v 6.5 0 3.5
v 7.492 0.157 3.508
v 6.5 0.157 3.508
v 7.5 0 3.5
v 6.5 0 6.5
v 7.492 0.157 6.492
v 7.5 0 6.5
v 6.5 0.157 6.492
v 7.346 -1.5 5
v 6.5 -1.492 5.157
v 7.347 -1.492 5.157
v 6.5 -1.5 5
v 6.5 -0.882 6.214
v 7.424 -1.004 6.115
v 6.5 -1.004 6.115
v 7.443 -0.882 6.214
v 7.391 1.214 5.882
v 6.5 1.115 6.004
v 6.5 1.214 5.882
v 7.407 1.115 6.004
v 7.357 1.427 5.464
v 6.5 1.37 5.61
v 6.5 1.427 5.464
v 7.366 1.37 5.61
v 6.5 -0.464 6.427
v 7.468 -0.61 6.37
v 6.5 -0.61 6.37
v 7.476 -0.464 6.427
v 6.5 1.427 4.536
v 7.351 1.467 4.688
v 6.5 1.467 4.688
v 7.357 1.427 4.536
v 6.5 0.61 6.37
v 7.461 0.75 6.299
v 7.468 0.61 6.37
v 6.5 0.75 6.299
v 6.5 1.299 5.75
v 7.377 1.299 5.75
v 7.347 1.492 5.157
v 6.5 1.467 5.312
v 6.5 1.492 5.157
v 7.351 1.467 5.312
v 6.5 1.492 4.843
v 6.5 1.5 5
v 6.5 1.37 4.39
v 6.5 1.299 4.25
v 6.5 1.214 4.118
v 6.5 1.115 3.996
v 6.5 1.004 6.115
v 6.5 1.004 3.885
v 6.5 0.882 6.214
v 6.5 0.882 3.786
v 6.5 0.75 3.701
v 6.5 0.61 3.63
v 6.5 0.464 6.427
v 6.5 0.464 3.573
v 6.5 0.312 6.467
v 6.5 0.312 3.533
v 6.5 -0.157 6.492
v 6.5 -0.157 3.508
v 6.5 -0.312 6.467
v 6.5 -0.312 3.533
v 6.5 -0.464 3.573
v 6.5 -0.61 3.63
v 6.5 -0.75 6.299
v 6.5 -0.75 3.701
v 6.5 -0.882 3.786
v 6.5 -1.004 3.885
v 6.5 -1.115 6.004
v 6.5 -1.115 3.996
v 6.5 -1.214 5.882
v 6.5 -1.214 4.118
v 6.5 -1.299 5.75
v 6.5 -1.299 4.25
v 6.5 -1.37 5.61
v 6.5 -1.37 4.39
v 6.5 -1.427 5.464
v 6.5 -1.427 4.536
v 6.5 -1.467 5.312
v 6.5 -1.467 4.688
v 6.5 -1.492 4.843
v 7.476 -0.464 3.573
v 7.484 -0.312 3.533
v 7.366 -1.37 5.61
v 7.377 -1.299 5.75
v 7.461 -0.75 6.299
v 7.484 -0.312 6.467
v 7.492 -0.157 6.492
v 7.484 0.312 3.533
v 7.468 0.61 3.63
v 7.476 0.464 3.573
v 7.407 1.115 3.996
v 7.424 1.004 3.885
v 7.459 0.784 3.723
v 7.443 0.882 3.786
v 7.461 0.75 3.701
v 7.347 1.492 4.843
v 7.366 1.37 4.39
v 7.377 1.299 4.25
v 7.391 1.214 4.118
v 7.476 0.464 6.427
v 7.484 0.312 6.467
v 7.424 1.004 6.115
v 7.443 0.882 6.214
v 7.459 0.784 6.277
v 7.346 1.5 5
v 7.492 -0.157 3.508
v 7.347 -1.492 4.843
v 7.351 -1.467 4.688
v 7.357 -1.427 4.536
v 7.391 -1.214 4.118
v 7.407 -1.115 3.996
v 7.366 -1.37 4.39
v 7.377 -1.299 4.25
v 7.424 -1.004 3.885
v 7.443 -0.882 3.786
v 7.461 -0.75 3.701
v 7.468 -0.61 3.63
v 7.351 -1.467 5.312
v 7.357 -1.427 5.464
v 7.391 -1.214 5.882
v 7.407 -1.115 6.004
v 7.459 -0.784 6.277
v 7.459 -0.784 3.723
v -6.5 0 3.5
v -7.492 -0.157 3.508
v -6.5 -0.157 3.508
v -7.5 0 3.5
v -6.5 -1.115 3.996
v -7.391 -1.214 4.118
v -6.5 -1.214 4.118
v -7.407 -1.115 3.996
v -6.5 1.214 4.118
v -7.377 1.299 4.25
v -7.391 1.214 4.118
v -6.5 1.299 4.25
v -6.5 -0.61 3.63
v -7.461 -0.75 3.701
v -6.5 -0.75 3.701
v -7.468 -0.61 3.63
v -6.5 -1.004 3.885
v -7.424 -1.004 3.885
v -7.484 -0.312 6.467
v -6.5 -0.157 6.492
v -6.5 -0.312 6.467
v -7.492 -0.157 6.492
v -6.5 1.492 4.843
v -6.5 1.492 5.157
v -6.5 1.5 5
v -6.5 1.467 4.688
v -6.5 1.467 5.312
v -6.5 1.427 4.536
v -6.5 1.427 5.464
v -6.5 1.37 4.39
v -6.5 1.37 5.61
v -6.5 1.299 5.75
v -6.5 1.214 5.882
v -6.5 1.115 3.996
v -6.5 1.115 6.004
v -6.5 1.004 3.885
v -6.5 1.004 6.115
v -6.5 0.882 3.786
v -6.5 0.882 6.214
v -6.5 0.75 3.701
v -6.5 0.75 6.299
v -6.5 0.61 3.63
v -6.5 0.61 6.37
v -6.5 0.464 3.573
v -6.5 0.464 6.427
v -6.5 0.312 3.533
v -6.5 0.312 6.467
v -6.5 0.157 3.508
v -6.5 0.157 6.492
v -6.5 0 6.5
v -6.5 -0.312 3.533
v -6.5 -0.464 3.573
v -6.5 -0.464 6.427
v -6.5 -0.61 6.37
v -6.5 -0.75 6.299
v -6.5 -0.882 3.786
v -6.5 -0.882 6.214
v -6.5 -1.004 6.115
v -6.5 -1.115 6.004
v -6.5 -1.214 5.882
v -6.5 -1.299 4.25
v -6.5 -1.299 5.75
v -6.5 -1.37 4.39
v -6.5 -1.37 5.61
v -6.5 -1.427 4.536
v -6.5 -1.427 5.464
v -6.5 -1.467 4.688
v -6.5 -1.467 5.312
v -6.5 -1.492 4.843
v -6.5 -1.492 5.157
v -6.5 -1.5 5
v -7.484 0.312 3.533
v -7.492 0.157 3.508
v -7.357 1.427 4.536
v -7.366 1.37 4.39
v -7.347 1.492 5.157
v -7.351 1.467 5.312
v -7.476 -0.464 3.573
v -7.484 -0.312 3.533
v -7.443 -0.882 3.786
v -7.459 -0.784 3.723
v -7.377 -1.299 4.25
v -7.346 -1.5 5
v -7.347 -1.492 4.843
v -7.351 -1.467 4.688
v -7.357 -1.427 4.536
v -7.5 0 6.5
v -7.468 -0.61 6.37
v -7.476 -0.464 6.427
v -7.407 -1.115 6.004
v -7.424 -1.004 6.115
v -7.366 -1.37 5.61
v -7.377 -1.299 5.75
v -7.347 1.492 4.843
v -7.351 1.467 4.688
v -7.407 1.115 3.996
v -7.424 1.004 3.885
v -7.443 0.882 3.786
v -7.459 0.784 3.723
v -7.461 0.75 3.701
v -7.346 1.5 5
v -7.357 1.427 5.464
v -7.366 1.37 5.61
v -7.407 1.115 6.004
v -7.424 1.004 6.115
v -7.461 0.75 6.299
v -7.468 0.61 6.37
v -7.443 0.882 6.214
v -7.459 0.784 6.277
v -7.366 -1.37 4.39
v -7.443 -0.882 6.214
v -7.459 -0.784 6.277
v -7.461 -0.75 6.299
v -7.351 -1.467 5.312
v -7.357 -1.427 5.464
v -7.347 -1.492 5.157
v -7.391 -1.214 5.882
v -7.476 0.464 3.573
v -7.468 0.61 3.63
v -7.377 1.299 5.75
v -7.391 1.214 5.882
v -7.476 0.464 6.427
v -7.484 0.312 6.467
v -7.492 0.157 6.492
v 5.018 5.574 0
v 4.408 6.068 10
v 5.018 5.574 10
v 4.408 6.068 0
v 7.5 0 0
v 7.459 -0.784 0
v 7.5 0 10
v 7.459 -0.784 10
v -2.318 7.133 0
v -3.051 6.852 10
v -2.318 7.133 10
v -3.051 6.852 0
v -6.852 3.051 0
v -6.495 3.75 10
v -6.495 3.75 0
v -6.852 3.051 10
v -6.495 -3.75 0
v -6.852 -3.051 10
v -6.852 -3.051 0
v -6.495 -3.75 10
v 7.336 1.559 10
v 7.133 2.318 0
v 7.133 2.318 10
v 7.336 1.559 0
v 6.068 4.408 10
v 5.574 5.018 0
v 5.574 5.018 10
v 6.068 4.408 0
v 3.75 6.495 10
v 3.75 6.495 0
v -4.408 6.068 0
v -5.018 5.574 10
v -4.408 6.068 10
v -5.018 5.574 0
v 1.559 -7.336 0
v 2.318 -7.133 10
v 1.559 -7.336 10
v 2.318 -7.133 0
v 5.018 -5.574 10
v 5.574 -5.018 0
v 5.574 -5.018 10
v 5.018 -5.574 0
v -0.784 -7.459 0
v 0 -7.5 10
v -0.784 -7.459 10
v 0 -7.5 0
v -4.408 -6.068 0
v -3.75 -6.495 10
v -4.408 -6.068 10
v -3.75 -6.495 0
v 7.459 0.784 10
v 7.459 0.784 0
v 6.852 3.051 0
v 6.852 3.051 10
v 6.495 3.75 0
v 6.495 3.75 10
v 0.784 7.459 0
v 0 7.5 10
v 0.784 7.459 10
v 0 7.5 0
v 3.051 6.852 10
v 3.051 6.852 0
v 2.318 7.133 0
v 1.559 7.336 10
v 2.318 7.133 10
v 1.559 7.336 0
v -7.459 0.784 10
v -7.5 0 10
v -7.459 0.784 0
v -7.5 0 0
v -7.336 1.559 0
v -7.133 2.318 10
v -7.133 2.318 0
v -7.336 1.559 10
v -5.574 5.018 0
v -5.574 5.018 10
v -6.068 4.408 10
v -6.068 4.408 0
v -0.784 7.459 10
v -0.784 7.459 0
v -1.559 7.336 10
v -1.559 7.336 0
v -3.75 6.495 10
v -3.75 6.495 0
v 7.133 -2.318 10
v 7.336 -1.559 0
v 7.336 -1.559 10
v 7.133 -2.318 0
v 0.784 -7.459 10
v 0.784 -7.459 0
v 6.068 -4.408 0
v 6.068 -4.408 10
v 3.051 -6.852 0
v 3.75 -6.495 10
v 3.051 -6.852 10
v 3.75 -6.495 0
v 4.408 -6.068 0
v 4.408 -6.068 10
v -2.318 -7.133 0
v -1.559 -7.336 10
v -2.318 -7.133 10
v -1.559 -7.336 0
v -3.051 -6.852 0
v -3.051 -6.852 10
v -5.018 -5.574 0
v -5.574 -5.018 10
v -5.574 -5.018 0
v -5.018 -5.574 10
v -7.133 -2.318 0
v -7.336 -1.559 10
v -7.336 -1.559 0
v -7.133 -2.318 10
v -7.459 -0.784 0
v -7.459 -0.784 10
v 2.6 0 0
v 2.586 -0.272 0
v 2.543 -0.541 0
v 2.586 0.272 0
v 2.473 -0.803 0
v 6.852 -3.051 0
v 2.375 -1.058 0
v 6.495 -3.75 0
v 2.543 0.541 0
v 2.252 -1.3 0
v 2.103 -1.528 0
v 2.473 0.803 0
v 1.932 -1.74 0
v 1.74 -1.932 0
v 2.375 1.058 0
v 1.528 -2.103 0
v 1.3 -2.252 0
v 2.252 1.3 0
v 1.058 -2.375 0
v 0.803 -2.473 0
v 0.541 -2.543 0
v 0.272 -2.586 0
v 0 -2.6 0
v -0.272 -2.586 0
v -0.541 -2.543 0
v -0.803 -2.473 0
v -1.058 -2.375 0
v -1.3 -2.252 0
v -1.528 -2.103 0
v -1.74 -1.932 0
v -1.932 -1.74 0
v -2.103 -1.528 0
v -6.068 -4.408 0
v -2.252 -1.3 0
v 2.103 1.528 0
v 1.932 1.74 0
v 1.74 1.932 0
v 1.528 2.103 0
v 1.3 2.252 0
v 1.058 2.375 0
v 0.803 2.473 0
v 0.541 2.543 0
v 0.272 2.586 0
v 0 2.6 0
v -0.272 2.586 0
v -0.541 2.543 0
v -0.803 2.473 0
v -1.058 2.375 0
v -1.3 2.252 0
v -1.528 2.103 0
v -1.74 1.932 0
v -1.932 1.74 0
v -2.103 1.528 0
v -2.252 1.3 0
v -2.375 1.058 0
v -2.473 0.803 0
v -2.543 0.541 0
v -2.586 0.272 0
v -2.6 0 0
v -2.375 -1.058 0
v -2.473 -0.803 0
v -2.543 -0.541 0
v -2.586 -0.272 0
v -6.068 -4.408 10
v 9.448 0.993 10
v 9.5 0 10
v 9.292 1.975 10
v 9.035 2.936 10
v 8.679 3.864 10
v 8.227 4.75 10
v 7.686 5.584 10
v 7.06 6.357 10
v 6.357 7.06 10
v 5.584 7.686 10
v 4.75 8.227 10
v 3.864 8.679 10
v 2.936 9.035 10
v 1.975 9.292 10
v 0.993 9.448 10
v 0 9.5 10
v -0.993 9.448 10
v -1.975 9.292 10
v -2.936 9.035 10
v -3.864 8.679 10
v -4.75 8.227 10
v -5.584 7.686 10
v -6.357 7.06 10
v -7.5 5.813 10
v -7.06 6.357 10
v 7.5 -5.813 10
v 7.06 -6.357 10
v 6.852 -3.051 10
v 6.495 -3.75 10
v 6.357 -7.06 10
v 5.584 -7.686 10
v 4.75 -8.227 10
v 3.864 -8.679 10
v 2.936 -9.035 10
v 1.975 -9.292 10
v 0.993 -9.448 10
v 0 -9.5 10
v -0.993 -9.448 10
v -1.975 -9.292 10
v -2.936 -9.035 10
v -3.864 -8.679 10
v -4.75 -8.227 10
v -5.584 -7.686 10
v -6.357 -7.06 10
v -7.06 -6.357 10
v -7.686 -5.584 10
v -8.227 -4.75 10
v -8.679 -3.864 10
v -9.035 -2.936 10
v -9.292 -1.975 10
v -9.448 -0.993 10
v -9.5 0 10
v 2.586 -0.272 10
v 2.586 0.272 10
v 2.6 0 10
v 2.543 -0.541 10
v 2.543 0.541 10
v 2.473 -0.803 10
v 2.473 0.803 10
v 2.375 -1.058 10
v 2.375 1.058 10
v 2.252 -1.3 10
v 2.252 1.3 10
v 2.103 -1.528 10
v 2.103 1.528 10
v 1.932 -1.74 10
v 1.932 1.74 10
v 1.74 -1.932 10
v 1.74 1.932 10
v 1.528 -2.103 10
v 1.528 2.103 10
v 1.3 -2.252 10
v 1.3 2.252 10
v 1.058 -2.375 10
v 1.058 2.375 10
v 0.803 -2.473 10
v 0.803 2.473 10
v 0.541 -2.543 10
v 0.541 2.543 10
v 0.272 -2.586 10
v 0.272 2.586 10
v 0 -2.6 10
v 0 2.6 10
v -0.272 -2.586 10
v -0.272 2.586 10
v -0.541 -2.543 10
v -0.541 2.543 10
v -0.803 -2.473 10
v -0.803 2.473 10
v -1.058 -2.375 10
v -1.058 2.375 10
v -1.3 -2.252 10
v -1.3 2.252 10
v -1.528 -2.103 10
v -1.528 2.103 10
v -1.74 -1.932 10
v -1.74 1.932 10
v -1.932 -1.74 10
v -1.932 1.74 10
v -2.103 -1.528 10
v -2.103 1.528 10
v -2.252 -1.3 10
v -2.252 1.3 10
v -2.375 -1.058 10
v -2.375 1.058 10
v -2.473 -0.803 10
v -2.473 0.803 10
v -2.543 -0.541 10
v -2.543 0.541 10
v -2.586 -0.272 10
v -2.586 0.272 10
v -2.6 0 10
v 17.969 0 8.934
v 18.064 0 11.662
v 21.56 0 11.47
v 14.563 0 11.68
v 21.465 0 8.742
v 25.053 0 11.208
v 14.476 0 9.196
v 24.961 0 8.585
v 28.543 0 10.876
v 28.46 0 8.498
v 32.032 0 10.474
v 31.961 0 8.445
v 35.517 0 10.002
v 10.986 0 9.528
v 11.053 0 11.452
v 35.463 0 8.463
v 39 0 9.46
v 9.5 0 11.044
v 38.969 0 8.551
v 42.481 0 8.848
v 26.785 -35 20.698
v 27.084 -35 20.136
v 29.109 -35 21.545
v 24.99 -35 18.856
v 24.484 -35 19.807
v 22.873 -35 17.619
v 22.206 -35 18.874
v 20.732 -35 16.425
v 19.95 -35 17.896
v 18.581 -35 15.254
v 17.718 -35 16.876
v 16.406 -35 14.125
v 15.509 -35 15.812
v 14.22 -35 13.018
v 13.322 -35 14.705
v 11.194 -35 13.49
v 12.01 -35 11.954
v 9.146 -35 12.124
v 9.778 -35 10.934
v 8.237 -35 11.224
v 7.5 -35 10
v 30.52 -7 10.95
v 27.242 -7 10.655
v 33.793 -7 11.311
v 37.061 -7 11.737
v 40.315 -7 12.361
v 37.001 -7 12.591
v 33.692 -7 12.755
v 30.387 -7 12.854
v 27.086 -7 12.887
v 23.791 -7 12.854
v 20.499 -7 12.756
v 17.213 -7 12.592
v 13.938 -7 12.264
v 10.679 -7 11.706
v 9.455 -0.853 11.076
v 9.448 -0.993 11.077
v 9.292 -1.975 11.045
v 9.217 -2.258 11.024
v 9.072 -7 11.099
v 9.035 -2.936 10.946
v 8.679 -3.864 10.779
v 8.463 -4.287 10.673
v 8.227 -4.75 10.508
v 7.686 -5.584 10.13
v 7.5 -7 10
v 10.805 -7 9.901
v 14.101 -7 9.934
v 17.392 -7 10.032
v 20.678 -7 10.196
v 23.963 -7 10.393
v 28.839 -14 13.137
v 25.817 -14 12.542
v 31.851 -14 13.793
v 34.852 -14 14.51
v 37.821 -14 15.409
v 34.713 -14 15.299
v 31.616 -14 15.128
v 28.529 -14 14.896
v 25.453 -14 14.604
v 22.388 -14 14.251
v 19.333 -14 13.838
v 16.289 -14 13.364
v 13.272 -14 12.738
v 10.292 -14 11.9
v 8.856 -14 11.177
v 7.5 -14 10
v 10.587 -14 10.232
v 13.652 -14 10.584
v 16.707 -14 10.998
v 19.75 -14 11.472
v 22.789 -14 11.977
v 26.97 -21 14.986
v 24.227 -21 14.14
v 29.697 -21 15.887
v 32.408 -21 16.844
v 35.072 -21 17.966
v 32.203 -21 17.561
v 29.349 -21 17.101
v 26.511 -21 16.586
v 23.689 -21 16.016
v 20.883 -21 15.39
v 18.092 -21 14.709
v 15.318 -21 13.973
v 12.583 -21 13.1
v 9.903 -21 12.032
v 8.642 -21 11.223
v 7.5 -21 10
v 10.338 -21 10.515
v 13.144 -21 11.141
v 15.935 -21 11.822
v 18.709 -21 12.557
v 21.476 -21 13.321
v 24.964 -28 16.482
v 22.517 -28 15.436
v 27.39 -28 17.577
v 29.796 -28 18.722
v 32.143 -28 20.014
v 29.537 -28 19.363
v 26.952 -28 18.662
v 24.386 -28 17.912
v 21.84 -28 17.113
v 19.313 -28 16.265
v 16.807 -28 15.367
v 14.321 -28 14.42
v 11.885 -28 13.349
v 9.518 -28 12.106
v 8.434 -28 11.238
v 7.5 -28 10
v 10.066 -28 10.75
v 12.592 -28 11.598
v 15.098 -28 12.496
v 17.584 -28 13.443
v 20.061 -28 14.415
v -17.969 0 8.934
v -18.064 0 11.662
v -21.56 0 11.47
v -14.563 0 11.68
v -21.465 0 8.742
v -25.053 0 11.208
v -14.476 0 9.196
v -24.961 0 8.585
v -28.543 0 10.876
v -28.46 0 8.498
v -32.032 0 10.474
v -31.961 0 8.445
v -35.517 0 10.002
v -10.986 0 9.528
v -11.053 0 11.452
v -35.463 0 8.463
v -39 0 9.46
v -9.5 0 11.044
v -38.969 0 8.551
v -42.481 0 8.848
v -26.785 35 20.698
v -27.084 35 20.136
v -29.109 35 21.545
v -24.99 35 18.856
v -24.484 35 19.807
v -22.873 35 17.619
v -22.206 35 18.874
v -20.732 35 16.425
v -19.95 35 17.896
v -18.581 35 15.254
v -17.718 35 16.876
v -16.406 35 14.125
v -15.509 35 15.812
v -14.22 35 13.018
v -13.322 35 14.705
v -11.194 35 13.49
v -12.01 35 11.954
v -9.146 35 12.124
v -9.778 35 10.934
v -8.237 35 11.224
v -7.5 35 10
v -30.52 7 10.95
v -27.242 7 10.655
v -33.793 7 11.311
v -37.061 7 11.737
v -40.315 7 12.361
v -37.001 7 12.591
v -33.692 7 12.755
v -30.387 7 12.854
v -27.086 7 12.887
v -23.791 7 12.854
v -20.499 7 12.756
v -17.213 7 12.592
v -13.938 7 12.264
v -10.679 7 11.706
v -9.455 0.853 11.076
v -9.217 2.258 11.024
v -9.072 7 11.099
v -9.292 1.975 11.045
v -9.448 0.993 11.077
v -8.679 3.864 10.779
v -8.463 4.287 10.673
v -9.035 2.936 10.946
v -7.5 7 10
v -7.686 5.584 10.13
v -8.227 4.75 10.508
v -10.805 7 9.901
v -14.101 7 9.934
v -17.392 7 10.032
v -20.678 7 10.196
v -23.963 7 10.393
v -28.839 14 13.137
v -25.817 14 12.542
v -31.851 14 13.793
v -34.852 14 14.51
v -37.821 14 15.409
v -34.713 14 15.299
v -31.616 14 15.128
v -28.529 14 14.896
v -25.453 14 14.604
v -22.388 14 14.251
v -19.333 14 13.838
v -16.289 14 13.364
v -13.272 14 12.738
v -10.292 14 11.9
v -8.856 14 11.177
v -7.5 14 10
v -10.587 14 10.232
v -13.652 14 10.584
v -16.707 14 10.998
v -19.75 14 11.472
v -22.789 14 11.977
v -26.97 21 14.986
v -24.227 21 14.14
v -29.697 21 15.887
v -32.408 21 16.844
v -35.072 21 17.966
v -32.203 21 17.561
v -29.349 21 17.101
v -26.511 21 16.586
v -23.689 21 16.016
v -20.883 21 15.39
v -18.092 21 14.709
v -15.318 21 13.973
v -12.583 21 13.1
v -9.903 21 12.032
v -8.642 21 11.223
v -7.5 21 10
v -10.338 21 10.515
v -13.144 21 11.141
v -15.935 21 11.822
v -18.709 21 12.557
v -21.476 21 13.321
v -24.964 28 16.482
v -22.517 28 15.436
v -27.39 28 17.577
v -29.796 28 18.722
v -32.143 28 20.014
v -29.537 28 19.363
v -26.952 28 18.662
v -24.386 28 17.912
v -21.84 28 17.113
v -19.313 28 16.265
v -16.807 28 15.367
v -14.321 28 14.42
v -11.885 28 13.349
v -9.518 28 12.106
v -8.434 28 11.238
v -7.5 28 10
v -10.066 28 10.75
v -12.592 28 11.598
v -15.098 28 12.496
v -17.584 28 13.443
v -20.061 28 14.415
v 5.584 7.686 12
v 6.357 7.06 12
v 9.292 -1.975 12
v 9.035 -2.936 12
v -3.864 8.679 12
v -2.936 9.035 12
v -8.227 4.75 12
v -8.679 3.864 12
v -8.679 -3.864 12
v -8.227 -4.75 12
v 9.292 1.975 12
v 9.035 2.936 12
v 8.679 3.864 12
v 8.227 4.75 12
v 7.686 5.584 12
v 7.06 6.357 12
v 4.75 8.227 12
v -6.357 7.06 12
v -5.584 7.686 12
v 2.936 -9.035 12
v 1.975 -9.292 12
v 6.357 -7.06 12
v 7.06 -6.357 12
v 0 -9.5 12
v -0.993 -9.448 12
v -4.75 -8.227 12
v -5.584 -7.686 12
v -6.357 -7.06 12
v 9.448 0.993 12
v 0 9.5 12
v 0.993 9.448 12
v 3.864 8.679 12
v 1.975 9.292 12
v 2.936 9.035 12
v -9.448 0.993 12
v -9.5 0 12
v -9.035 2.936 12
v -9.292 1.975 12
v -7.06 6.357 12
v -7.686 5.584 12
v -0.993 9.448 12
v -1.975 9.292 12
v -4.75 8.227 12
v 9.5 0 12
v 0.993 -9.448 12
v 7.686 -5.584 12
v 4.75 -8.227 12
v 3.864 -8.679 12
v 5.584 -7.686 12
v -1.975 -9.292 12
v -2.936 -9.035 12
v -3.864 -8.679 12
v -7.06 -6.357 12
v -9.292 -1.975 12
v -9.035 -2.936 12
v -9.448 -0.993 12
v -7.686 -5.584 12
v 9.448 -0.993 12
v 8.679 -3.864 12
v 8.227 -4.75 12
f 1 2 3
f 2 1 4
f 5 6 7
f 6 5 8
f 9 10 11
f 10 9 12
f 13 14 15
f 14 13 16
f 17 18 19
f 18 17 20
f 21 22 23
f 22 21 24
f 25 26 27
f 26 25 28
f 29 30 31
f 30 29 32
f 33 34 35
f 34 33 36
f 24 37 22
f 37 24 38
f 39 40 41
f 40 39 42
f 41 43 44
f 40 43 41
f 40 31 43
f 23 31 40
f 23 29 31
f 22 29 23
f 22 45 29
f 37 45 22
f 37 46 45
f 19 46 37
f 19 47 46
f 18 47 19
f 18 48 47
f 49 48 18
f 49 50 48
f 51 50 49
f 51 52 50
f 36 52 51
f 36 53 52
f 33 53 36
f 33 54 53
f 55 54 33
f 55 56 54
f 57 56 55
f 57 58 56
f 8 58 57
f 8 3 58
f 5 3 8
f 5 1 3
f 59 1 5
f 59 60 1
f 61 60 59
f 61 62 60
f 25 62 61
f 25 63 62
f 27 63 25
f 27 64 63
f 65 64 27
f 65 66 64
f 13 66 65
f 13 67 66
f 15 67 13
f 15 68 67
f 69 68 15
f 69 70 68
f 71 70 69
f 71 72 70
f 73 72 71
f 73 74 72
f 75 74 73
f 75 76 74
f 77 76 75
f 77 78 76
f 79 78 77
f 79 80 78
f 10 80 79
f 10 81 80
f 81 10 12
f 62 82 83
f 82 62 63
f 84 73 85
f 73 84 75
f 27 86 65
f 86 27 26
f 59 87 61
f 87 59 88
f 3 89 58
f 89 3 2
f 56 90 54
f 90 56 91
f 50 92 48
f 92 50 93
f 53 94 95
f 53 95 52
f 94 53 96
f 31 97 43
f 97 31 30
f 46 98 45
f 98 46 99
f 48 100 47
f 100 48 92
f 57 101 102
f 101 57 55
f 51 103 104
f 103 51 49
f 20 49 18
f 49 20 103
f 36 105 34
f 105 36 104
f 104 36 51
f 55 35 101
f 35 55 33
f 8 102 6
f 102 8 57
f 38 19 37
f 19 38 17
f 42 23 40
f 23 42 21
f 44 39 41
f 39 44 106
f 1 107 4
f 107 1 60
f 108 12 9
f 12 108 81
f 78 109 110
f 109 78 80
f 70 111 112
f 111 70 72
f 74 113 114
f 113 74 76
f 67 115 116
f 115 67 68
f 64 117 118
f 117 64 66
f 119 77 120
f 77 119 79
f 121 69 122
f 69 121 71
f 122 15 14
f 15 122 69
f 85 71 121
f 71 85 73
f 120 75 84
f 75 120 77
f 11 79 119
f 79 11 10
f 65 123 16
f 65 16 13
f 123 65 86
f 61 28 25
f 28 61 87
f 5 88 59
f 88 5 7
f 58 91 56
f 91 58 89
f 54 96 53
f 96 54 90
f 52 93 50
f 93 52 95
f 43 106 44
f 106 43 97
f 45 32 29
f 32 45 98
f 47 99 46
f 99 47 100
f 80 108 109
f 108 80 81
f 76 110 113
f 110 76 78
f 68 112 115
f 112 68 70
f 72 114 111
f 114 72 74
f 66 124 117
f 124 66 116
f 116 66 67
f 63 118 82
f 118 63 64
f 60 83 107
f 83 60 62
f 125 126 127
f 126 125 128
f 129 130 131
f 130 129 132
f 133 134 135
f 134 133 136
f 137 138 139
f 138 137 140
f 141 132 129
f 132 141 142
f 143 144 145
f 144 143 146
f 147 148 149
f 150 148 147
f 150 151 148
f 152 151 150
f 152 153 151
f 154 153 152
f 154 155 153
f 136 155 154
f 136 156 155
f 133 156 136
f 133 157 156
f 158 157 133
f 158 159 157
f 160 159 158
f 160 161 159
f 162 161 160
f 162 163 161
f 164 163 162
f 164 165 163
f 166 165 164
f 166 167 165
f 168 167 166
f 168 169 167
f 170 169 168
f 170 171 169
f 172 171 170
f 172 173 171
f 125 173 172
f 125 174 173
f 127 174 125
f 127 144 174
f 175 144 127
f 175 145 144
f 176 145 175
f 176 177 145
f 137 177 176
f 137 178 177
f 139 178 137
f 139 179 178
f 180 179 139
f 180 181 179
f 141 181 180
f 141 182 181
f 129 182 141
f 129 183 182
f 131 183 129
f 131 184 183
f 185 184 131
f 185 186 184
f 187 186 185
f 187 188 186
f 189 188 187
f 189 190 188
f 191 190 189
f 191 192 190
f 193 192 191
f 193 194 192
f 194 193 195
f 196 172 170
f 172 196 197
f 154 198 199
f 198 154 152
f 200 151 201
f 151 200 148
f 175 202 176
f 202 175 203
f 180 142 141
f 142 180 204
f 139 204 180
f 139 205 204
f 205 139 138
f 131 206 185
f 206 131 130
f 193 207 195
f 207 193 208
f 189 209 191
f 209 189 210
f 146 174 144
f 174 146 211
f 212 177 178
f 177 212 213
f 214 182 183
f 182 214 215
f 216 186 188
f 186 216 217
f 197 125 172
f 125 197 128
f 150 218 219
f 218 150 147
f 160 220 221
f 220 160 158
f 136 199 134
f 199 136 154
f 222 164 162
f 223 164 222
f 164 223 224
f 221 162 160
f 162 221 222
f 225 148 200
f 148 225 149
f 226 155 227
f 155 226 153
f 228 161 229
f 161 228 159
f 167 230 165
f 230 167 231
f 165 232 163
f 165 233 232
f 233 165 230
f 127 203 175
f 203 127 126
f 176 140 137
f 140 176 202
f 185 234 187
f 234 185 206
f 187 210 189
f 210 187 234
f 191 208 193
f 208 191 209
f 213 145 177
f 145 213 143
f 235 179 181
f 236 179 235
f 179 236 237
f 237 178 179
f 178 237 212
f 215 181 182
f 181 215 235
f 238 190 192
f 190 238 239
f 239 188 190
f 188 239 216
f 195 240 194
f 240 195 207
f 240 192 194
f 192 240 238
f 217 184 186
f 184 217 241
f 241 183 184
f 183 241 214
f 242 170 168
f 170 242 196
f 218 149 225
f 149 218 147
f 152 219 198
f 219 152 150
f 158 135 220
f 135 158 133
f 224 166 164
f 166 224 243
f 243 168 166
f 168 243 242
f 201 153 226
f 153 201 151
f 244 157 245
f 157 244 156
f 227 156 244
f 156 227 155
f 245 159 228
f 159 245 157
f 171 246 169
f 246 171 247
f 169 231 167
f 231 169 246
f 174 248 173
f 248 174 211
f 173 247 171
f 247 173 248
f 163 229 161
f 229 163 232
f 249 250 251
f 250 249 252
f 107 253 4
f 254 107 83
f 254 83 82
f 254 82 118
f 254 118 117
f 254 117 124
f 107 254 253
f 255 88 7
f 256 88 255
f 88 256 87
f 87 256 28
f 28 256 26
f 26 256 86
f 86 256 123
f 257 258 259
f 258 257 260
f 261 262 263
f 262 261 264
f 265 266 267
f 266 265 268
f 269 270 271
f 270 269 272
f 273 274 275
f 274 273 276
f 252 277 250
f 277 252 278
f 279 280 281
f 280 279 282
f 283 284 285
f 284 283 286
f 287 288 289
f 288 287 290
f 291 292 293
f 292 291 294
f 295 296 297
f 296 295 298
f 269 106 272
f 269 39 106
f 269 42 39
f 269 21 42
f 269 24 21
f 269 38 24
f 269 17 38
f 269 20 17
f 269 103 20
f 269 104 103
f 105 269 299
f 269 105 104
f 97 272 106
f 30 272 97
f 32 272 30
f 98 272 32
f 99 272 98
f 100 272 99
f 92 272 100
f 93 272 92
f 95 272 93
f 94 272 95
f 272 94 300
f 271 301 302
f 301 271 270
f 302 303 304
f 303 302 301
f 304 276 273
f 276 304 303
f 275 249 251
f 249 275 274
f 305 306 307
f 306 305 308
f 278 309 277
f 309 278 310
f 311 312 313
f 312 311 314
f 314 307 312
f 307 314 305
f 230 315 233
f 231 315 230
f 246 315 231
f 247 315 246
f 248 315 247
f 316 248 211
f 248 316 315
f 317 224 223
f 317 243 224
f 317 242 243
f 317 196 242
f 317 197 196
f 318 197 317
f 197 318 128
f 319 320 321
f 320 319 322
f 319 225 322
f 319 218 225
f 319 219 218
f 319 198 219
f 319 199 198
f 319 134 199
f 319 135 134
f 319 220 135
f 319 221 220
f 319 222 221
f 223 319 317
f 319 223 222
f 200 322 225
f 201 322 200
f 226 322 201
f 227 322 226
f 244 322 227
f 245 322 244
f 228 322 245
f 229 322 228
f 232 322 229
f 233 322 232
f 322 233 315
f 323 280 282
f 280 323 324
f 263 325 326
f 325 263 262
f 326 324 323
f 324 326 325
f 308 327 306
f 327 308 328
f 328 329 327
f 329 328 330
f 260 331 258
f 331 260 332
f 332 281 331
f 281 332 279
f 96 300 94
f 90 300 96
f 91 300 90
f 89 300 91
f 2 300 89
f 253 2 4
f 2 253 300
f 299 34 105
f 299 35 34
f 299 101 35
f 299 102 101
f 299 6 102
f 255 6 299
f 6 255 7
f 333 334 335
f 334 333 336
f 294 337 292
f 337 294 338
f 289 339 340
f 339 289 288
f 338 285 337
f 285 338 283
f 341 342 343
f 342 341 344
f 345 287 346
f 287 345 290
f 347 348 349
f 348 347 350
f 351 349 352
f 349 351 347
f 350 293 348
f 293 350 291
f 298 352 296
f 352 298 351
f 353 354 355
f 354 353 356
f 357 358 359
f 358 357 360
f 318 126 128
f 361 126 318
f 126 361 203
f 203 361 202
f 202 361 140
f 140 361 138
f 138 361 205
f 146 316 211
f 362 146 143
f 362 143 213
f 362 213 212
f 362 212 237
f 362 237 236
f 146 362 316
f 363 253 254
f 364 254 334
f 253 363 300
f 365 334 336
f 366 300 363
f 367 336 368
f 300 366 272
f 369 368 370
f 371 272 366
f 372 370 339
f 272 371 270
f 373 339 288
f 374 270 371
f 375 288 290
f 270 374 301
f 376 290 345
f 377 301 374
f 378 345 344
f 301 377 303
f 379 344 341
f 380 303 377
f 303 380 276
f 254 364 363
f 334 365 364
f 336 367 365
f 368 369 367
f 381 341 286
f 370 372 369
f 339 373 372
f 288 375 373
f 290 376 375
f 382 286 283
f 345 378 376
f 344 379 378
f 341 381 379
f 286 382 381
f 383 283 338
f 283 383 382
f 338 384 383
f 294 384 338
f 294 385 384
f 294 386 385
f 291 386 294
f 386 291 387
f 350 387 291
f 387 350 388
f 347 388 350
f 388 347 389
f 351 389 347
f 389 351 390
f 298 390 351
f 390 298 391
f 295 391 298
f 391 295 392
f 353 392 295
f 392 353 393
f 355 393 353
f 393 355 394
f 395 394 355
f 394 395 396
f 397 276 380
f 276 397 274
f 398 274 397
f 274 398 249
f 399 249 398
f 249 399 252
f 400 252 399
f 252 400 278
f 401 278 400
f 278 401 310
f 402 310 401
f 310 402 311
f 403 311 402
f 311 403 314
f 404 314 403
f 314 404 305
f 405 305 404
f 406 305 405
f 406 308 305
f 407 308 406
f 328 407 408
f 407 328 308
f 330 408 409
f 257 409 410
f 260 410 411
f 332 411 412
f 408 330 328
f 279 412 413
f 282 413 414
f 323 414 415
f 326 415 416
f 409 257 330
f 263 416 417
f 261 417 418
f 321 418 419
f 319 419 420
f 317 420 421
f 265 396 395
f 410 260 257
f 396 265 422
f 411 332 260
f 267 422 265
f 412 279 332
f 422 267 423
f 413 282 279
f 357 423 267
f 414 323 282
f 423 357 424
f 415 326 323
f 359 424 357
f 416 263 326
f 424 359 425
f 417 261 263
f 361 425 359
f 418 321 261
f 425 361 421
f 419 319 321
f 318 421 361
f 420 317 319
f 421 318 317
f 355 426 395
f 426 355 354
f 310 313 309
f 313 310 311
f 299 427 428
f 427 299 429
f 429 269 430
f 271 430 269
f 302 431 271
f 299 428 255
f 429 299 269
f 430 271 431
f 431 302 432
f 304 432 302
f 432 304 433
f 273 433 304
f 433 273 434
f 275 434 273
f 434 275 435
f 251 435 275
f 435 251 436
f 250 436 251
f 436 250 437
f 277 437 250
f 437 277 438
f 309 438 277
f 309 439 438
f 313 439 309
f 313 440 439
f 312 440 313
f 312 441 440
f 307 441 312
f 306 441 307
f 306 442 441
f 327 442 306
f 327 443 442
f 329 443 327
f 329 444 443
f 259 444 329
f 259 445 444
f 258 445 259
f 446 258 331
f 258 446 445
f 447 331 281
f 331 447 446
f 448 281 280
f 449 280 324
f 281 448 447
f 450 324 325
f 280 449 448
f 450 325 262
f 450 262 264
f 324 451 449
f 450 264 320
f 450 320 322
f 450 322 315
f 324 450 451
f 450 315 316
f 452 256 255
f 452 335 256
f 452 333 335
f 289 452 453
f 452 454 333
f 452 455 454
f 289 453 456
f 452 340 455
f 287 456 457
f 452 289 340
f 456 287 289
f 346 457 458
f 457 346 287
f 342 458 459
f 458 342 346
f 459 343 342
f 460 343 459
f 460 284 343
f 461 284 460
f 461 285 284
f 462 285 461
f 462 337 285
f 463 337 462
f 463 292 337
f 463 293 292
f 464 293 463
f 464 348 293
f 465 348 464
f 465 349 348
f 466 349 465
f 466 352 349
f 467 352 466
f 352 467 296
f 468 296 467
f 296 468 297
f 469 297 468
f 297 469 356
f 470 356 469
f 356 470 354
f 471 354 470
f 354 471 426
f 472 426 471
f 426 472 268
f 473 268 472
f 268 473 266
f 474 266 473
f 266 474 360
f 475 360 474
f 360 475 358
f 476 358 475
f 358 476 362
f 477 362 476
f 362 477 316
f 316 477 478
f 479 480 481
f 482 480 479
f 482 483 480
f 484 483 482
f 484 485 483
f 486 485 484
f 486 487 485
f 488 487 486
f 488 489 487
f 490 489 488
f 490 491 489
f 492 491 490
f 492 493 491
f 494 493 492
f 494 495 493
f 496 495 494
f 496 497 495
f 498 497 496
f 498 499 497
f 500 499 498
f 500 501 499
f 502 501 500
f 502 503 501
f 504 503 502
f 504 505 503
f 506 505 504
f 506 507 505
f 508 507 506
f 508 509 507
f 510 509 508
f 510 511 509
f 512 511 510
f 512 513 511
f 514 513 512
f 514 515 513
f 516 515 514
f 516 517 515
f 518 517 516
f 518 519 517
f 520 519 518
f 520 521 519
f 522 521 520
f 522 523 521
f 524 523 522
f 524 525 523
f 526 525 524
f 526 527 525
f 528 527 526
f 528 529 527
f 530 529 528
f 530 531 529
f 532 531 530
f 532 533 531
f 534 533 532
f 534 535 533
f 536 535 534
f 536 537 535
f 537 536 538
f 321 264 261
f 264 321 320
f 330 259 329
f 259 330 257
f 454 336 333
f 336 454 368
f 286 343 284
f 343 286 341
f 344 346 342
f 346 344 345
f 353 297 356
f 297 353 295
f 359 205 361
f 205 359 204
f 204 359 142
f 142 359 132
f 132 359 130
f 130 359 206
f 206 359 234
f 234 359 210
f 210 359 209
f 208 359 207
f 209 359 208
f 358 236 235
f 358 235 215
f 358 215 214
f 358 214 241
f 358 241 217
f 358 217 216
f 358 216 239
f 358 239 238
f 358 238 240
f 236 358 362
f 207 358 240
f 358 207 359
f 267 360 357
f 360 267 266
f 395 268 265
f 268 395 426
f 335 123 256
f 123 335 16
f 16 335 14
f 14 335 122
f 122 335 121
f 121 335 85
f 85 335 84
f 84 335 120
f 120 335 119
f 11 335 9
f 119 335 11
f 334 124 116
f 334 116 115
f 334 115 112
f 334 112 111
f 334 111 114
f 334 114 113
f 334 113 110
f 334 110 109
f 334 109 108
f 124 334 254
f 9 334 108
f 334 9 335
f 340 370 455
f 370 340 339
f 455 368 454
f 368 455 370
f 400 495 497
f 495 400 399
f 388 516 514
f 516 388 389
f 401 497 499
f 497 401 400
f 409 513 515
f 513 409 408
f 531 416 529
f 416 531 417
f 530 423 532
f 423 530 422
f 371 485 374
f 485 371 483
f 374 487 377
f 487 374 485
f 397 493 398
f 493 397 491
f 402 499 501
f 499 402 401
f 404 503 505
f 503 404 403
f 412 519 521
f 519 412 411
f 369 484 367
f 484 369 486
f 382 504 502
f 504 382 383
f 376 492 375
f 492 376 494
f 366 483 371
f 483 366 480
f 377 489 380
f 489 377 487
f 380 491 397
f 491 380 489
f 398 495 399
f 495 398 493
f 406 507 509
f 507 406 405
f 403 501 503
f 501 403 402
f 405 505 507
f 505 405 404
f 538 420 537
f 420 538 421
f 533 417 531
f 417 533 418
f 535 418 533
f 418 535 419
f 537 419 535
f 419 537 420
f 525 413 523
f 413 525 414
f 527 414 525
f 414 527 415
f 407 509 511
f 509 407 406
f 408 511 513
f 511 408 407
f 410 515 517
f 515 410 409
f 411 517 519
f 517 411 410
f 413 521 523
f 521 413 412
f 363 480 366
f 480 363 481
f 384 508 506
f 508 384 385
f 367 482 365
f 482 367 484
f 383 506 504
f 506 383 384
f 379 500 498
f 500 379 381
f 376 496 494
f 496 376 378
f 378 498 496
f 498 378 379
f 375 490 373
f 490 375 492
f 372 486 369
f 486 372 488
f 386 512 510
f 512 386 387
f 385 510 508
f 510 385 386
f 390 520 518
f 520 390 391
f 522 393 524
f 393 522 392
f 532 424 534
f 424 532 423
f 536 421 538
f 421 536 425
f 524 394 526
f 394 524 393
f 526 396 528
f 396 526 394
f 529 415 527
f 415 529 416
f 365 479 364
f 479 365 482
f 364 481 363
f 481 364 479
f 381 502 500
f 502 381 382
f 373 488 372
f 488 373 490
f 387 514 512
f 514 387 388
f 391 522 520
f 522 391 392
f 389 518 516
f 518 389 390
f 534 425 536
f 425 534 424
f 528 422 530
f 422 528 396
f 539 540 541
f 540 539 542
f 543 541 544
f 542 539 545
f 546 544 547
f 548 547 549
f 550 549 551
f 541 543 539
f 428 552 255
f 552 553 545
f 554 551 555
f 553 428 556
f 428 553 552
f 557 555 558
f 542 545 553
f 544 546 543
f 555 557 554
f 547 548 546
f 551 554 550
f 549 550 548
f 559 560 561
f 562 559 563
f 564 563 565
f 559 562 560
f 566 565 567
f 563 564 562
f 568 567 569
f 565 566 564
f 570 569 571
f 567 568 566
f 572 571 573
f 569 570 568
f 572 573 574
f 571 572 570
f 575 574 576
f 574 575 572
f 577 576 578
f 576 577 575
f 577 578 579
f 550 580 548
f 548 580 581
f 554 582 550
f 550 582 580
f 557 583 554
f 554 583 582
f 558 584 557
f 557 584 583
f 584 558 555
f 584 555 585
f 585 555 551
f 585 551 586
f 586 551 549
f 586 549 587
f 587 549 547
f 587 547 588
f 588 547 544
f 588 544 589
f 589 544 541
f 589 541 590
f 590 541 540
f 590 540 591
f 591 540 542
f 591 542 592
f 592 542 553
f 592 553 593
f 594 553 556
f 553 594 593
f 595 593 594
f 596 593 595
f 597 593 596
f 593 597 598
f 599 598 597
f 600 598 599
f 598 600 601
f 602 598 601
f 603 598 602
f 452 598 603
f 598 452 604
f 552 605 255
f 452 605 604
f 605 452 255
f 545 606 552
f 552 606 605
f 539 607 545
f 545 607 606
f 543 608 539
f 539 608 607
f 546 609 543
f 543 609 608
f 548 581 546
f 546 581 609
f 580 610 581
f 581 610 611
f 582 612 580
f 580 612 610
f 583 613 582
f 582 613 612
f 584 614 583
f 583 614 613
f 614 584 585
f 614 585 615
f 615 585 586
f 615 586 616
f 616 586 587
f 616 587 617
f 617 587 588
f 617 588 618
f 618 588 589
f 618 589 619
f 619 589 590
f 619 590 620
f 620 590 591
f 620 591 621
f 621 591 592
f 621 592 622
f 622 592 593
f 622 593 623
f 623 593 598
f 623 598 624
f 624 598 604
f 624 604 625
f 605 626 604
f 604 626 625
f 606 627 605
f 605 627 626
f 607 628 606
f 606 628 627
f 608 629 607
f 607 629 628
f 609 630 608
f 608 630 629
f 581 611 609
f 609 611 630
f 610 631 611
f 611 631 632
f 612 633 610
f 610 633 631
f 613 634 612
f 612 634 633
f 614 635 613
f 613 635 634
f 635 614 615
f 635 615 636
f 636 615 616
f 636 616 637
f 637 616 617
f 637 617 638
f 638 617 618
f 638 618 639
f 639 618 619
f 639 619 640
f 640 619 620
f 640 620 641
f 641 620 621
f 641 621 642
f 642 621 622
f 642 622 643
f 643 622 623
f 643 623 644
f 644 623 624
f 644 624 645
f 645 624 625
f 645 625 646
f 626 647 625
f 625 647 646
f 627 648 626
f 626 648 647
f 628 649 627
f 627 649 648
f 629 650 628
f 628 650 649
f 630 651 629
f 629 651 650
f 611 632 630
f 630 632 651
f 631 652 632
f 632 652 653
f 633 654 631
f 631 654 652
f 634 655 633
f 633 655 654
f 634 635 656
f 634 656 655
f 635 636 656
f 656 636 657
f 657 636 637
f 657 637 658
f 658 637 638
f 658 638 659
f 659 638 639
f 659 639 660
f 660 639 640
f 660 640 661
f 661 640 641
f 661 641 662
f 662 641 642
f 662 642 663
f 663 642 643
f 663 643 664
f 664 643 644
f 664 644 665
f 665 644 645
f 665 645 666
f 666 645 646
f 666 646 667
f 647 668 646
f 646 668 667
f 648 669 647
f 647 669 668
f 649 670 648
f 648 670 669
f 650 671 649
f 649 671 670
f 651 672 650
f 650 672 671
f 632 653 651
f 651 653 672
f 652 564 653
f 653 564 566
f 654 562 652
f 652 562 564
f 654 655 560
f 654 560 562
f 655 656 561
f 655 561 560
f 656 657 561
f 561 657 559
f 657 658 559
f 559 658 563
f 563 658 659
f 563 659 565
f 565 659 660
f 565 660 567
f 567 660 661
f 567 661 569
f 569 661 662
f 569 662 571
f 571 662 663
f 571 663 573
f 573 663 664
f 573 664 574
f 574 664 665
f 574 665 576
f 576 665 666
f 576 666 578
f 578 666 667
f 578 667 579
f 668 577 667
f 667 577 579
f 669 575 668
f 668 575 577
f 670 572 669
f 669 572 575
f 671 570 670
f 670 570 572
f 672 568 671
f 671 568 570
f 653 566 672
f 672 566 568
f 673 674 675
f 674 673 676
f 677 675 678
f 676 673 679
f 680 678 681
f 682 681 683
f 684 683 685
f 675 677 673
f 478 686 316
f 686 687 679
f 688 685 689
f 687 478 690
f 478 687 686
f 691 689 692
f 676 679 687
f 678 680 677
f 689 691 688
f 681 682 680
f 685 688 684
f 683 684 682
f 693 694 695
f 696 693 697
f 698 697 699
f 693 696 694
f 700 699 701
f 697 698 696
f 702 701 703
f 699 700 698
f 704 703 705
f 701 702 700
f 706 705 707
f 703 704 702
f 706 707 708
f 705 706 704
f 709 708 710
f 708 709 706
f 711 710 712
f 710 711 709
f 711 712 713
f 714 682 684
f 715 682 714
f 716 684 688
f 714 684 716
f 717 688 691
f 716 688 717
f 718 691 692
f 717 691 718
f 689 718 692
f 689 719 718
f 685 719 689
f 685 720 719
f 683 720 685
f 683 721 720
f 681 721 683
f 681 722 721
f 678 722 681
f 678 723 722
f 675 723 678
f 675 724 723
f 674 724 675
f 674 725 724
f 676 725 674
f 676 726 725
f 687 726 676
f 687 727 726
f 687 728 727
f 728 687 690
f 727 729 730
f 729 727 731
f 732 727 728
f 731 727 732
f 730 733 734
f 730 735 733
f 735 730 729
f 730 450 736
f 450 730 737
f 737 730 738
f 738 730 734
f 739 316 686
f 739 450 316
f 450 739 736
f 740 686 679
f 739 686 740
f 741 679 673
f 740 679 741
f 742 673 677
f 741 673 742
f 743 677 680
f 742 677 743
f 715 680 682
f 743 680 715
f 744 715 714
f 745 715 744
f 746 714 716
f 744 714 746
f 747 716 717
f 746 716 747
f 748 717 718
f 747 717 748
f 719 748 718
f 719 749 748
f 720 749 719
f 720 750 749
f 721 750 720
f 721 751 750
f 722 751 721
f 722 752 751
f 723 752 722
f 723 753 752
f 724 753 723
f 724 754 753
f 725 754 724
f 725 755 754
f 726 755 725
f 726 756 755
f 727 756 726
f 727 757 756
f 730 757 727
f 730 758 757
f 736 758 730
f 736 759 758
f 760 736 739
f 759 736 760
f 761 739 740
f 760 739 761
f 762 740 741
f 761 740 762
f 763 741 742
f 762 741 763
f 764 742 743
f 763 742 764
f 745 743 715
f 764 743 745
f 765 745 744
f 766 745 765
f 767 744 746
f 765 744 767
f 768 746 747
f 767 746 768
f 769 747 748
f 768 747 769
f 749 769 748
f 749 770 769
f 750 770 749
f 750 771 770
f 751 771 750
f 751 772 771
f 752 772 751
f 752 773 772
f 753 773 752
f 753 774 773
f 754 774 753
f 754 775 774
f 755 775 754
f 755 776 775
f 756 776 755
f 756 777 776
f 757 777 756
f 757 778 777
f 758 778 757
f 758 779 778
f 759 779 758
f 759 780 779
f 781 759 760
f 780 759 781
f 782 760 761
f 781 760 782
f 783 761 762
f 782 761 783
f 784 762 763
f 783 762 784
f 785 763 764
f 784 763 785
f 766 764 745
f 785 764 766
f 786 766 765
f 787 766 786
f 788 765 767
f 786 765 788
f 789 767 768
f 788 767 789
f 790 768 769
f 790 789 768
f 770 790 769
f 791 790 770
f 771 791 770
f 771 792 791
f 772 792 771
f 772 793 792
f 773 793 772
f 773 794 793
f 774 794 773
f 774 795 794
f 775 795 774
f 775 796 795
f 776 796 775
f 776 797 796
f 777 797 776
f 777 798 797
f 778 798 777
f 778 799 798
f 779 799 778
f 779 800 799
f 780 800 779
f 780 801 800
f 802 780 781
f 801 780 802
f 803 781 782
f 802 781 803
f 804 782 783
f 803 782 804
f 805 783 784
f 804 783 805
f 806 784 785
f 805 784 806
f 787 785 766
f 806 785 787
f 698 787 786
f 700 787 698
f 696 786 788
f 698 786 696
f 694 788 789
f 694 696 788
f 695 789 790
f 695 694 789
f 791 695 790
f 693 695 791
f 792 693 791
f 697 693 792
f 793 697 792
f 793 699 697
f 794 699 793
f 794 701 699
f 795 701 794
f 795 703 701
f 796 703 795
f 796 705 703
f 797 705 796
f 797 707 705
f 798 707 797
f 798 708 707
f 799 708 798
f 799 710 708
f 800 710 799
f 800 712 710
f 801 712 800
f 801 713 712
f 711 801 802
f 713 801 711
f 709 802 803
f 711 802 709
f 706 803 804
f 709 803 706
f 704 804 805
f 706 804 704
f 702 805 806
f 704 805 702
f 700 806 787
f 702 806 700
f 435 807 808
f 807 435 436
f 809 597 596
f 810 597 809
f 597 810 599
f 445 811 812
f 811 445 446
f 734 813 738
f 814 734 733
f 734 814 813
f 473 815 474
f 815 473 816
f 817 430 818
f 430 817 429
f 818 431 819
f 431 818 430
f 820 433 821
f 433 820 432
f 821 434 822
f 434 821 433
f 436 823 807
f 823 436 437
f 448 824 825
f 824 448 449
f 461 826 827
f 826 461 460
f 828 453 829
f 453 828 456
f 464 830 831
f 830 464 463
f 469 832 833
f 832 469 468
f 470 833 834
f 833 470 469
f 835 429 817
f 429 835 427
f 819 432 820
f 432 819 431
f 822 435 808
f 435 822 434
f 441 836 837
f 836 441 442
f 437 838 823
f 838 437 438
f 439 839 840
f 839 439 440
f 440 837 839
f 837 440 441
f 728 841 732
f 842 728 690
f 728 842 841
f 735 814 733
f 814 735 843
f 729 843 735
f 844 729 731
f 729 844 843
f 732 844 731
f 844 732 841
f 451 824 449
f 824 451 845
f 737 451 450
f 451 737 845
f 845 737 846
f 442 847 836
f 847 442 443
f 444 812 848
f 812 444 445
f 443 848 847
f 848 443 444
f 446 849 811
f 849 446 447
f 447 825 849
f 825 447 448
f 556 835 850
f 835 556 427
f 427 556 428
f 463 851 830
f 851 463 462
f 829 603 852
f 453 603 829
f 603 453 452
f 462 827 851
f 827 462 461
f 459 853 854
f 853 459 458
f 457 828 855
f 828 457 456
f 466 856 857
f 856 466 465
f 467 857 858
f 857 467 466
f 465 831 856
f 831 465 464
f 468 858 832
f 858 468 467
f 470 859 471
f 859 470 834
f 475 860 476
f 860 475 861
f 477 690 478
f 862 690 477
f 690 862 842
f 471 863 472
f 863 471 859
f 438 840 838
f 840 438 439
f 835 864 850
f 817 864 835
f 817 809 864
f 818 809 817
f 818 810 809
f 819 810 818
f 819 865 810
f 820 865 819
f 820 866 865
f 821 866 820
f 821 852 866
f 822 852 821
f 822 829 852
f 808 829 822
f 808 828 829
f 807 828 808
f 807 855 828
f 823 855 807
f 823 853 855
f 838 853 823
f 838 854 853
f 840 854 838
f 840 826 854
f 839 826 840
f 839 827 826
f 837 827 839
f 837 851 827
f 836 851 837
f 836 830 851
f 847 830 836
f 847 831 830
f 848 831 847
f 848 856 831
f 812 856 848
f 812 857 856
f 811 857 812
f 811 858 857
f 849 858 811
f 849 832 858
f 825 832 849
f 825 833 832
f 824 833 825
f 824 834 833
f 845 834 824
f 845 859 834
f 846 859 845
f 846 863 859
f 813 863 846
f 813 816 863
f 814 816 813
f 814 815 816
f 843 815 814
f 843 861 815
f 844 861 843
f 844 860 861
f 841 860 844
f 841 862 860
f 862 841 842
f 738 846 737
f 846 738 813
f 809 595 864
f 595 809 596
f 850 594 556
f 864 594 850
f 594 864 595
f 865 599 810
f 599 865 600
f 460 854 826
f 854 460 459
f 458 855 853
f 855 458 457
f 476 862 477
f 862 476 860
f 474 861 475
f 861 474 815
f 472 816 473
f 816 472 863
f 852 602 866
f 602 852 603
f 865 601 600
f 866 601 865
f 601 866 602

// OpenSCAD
/*
 * COMPLETE MOTOR + IMPELLER ASSEMBLY
 * For CFD fluid testing and visualization
 * 
 * This model includes:
 *   - Brushless motor (2204-2206 size)
 *   - Motor shaft (5mm)
 *   - Impeller hub
 *   - 3 impeller variants (bladeless, AI-blades, hybrid)
 *   - Mounting plate
 * 
 * Usage:
 *   - Render full assembly: F6
 *   - Export for CFD: Set EXPORT_MODE = "impeller_only"
 *   - Change design: Set IMPELLER_TYPE = "bladeless" | "bladed" | "hybrid"
 */

// ============================================================================
// CONFIGURATION PARAMETERS (AI-Optimizable)
// ============================================================================

// General Settings
$fn = 60;  // Resolution for CFD export (increase to 100 for final)

// Export Mode
EXPORT_MODE = "impeller_only";  // Options: "full_assembly", "impeller_only", "motor_only"

// Impeller Type
IMPELLER_TYPE = "bladed";  // Options: "bladeless", "bladed", "hybrid"

// Motor Specifications (2204-2206 brushless)
MOTOR_DIAMETER = 28;         // mm
MOTOR_HEIGHT = 25;           // mm
MOTOR_SHAFT_DIAMETER = 5;    // mm (standard)
MOTOR_SHAFT_LENGTH = 15;     // mm (extends above motor)
MOTOR_MOUNT_PATTERN = 16;    // mm (16x16 or 19x19 common)
MOTOR_SCREW_DIAMETER = 3;    // M3 screws

// Impeller Parameters - BLADELESS
BLADELESS_OUTER_DIAMETER = 90;    // mm
BLADELESS_AIR_GAP = 0.8;          // mm (optimize: 0.6-1.2)
BLADELESS_THROAT_RATIO = 0.72;    // (optimize: 0.65-0.80)
BLADELESS_EXPANSION_ANGLE = 18;   // degrees (optimize: 12-25)
BLADELESS_RING_THICKNESS = 3;     // mm (optimize: 2-4)
BLADELESS_HEIGHT = 24;            // mm

// Impeller Parameters - BLADED
BLADED_DIAMETER = 85;
BLADED_HUB_DIAMETER = 15;         // mm (optimize: 12-20)
BLADED_BLADE_COUNT = 2;
BLADED_ROOT_CHORD = 35;
BLADED_TIP_CHORD_RATIO = 0.7;    // (optimize: 0.6-0.8)
BLADED_BLADE_THICKNESS = 2;       // mm (optimize: 1.5-3)
BLADED_BLADE_TWIST = -30;
BLADED_ATTACK_ANGLE = -2;
BLADED_BLADE_HEIGHT = 12;         // mm (optimize: 10-15)

// Hub Parameters
HUB_DIAMETER = 15;
HUB_HEIGHT = 10;
HUB_SET_SCREW_DIAMETER = 3;  // M3 set screw

// Mounting Plate
PLATE_SIZE = 50;
PLATE_THICKNESS = 3;

// ============================================================================
// MOTOR MODEL
// ============================================================================

module brushless_motor_2204() {
    color("DarkSlateGray") {
        // Motor can (bell)
        difference() {
            cylinder(h=MOTOR_HEIGHT, d=MOTOR_DIAMETER);
            
            // Hollow inside (weight reduction visualization)
            translate([0, 0, -0.5])
                cylinder(h=MOTOR_HEIGHT - 5, d=MOTOR_DIAMETER - 4);
            
            // Mounting holes
            for(i = [0:3]) {
                rotate([0, 0, i * 90])
                    translate([MOTOR_MOUNT_PATTERN/2, 0, MOTOR_HEIGHT/2])
                        rotate([90, 0, 0])
                            cylinder(h=MOTOR_DIAMETER, d=MOTOR_SCREW_DIAMETER, center=true);
            }
        }
        
        // Motor base
        translate([0, 0, -3])
            cylinder(h=3, d=MOTOR_DIAMETER - 2);
    }
    
    // Motor shaft
    color("Silver")
        translate([0, 0, MOTOR_HEIGHT])
            cylinder(h=MOTOR_SHAFT_LENGTH, d=MOTOR_SHAFT_DIAMETER);
    
    // Shaft tip (for hub attachment)
    color("Silver")
        translate([0, 0, MOTOR_HEIGHT + MOTOR_SHAFT_LENGTH])
            cylinder(h=2, d=MOTOR_SHAFT_DIAMETER - 0.5);
}

// ============================================================================
// IMPELLER HUB
// ============================================================================

module impeller_hub() {
    color("Gray")
    difference() {
        // Hub body
        cylinder(h=HUB_HEIGHT, d=HUB_DIAMETER);
        
        // Shaft hole (5mm + 0.2mm clearance)
        translate([0, 0, -0.5])
            cylinder(h=HUB_HEIGHT + 1, d=MOTOR_SHAFT_DIAMETER + 0.2);
        
        // Set screw holes (2x for balance)
        for(i = [0:1]) {
            rotate([0, 0, i * 180])
                translate([HUB_DIAMETER/2 - 1, 0, HUB_HEIGHT/2])
                    rotate([0, 90, 0])
                        cylinder(h=5, d=HUB_SET_SCREW_DIAMETER);
        }
    }
}

// ============================================================================
// BLADELESS IMPELLER (Dyson-style)
// ============================================================================

module bladeless_impeller() {
    outer_r = BLADELESS_OUTER_DIAMETER / 2;
    throat_r = outer_r * BLADELESS_THROAT_RATIO;
    gap = BLADELESS_AIR_GAP;
    
    color("SkyBlue", 0.7)
    difference() {
        // Outer ring
        rotate_extrude()
            translate([outer_r - BLADELESS_RING_THICKNESS/2, BLADELESS_HEIGHT/2, 0])
                circle(d=BLADELESS_RING_THICKNESS + BLADELESS_HEIGHT);
        
        // Inner air gap (critical for Coanda effect)
        rotate_extrude()
            translate([outer_r - gap - BLADELESS_RING_THICKNESS/2, BLADELESS_HEIGHT/2, 0])
                circle(d=BLADELESS_RING_THICKNESS + BLADELESS_HEIGHT - 2*gap);
    }
    
    // Base plate (connects to hub)
    color("SkyBlue", 0.7)
    translate([0, 0, -2])
        difference() {
            cylinder(h=2, d=outer_r * 2);
            translate([0, 0, -0.5])
                cylinder(h=3, d=HUB_DIAMETER + 1);
        }
    
    // Air inlet (bell-shaped for smooth flow)
    color("SkyBlue", 0.7)
    translate([0, 0, -2]) {
        difference() {
            cylinder(h=15, d1=throat_r * 2, d2=outer_r * 1.8);
            translate([0, 0, -0.5])
                cylinder(h=16, d1=throat_r * 2 - 3, d2=outer_r * 1.8 - 3);
        }
    }
}

// ============================================================================
// AI-OPTIMIZED BLADED IMPELLER (NACA 2412 profile)
// ============================================================================

module naca_2412_blade(chord, height, twist_angle, attack_angle) {
    // Simplified NACA 2412 airfoil profile
    // Using parametric approximation for 3D printing
    
    color("LightSteelBlue", 0.8)
    linear_extrude(height=height, twist=twist_angle, scale=BLADED_TIP_CHORD_RATIO) {
        rotate([0, 0, attack_angle])
        polygon([
            // Upper surface (cambered)
            [0, 0],
            [chord * 0.05, chord * 0.03],
            [chord * 0.1, chord * 0.045],
            [chord * 0.2, chord * 0.055],
            [chord * 0.3, chord * 0.058],
            [chord * 0.4, chord * 0.056],
            [chord * 0.5, chord * 0.052],
            [chord * 0.6, chord * 0.046],
            [chord * 0.7, chord * 0.038],
            [chord * 0.8, chord * 0.028],
            [chord * 0.9, chord * 0.016],
            [chord * 1.0, chord * 0.002],
            // Lower surface (less cambered)
            [chord * 0.9, -chord * 0.010],
            [chord * 0.8, -chord * 0.016],
            [chord * 0.7, -chord * 0.020],
            [chord * 0.6, -chord * 0.022],
            [chord * 0.5, -chord * 0.023],
            [chord * 0.4, -chord * 0.022],
            [chord * 0.3, -chord * 0.020],
            [chord * 0.2, -chord * 0.016],
            [chord * 0.1, -chord * 0.010],
            [chord * 0.05, -chord * 0.005],
        ]);
    }
}

module bladed_impeller() {
    // Blades
    for(i = [0 : BLADED_BLADE_COUNT - 1]) {
        rotate([0, 0, i * (360 / BLADED_BLADE_COUNT)])
            translate([BLADED_HUB_DIAMETER/2, 0, 0])
                rotate([90, 0, 0])
                    naca_2412_blade(
                        BLADED_ROOT_CHORD, 
                        (BLADED_DIAMETER - BLADED_HUB_DIAMETER) / 2,
                        BLADED_BLADE_TWIST,
                        BLADED_ATTACK_ANGLE
                    );
    }
    
    // Hub disk (connects blades)
    color("LightSteelBlue", 0.8)
    cylinder(h=2, d=BLADED_HUB_DIAMETER + 4);
}

// ============================================================================
// HYBRID IMPELLER (Blades inside bladeless ring)
// ============================================================================

module hybrid_impeller() {
    // Outer bladeless ring
    bladeless_impeller();
    
    // Inner bladed impeller (scaled down to fit)
    scale([0.85, 0.85, 1])
        bladed_impeller();
}

// ============================================================================
// MOUNTING PLATE
// ============================================================================

module mounting_plate() {
    color("DimGray")
    difference() {
        // Base plate
        translate([-PLATE_SIZE/2, -PLATE_SIZE/2, 0])
            cube([PLATE_SIZE, PLATE_SIZE, PLATE_THICKNESS]);
        
        // Center hole for motor shaft
        translate([0, 0, -0.5])
            cylinder(h=PLATE_THICKNESS + 1, d=MOTOR_DIAMETER + 2);
        
        // Motor mounting holes
        for(i = [0:3]) {
            rotate([0, 0, i * 90])
                translate([MOTOR_MOUNT_PATTERN/2, 0, -0.5])
                    cylinder(h=PLATE_THICKNESS + 1, d=MOTOR_SCREW_DIAMETER);
        }
    }
}

// ============================================================================
// COMPLETE ASSEMBLY
// ============================================================================

module complete_assembly() {
    // Mounting plate (bottom)
    translate([0, 0, -PLATE_THICKNESS])
        mounting_plate();
    
    // Motor
    translate([0, 0, 0])
        brushless_motor_2204();
    
    // Hub (on shaft)
    translate([0, 0, MOTOR_HEIGHT + MOTOR_SHAFT_LENGTH - 2])
        impeller_hub();
    
    // Impeller (on hub)
    translate([0, 0, MOTOR_HEIGHT + MOTOR_SHAFT_LENGTH + HUB_HEIGHT]) {
        if (IMPELLER_TYPE == "bladeless") {
            bladeless_impeller();
        } else if (IMPELLER_TYPE == "bladed") {
            bladed_impeller();
        } else if (IMPELLER_TYPE == "hybrid") {
            hybrid_impeller();
        }
    }
}

// ============================================================================
// RENDER BASED ON EXPORT MODE
// ============================================================================

if (EXPORT_MODE == "full_assembly") {
    complete_assembly();
} 
else if (EXPORT_MODE == "impeller_only") {
    // For CFD testing - impeller + hub only
    impeller_hub();
    translate([0, 0, HUB_HEIGHT]) {
        if (IMPELLER_TYPE == "bladeless") {
            bladeless_impeller();
        } else if (IMPELLER_TYPE == "bladed") {
            bladed_impeller();
        } else if (IMPELLER_TYPE == "hybrid") {
            hybrid_impeller();
        }
    }
}
else if (EXPORT_MODE == "motor_only") {
    brushless_motor_2204();
}

// ============================================================================
// ANNOTATIONS FOR VISUALIZATION
// ============================================================================

// Uncomment to show dimensions
/*
color("Red", 0.3)
translate([BLADED_DIAMETER/2 + 10, 0, 20])
    text(str("Ø", BLADED_DIAMETER, "mm"), size=5, halign="left");

color("Green", 0.3)
translate([0, BLADED_DIAMETER/2 + 10, 20])
    text(str(BLADED_BLADE_COUNT, " blades"), size=5, halign="center");
*/

// ============================================================================
// EXPORT NOTES
// ============================================================================

/*
 * TO EXPORT FOR CFD TESTING:
 * 
 * 1. Set EXPORT_MODE = "impeller_only"
 * 2. Set IMPELLER_TYPE = "bladeless" (or "bladed" or "hybrid")
 * 3. Press F6 to render
 * 4. File → Export → Export as STL
 * 5. Use filename: impeller_bladeless_fn60.stl
 * 
 * FOR OPTIMIZATION:
 * - Modify parameters at top (marked with "optimize:")
 * - Re-render and export
 * - Upload to SimScale for CFD
 * - Compare results
 * 
 * RECOMMENDED CFD SETTINGS:
 * - Solver: k-omega SST
 * - RPM: 5000, 7000, 9000
 * - Mesh: 3-5M cells
 * - Boundary: Rotating zone on impeller
 */
